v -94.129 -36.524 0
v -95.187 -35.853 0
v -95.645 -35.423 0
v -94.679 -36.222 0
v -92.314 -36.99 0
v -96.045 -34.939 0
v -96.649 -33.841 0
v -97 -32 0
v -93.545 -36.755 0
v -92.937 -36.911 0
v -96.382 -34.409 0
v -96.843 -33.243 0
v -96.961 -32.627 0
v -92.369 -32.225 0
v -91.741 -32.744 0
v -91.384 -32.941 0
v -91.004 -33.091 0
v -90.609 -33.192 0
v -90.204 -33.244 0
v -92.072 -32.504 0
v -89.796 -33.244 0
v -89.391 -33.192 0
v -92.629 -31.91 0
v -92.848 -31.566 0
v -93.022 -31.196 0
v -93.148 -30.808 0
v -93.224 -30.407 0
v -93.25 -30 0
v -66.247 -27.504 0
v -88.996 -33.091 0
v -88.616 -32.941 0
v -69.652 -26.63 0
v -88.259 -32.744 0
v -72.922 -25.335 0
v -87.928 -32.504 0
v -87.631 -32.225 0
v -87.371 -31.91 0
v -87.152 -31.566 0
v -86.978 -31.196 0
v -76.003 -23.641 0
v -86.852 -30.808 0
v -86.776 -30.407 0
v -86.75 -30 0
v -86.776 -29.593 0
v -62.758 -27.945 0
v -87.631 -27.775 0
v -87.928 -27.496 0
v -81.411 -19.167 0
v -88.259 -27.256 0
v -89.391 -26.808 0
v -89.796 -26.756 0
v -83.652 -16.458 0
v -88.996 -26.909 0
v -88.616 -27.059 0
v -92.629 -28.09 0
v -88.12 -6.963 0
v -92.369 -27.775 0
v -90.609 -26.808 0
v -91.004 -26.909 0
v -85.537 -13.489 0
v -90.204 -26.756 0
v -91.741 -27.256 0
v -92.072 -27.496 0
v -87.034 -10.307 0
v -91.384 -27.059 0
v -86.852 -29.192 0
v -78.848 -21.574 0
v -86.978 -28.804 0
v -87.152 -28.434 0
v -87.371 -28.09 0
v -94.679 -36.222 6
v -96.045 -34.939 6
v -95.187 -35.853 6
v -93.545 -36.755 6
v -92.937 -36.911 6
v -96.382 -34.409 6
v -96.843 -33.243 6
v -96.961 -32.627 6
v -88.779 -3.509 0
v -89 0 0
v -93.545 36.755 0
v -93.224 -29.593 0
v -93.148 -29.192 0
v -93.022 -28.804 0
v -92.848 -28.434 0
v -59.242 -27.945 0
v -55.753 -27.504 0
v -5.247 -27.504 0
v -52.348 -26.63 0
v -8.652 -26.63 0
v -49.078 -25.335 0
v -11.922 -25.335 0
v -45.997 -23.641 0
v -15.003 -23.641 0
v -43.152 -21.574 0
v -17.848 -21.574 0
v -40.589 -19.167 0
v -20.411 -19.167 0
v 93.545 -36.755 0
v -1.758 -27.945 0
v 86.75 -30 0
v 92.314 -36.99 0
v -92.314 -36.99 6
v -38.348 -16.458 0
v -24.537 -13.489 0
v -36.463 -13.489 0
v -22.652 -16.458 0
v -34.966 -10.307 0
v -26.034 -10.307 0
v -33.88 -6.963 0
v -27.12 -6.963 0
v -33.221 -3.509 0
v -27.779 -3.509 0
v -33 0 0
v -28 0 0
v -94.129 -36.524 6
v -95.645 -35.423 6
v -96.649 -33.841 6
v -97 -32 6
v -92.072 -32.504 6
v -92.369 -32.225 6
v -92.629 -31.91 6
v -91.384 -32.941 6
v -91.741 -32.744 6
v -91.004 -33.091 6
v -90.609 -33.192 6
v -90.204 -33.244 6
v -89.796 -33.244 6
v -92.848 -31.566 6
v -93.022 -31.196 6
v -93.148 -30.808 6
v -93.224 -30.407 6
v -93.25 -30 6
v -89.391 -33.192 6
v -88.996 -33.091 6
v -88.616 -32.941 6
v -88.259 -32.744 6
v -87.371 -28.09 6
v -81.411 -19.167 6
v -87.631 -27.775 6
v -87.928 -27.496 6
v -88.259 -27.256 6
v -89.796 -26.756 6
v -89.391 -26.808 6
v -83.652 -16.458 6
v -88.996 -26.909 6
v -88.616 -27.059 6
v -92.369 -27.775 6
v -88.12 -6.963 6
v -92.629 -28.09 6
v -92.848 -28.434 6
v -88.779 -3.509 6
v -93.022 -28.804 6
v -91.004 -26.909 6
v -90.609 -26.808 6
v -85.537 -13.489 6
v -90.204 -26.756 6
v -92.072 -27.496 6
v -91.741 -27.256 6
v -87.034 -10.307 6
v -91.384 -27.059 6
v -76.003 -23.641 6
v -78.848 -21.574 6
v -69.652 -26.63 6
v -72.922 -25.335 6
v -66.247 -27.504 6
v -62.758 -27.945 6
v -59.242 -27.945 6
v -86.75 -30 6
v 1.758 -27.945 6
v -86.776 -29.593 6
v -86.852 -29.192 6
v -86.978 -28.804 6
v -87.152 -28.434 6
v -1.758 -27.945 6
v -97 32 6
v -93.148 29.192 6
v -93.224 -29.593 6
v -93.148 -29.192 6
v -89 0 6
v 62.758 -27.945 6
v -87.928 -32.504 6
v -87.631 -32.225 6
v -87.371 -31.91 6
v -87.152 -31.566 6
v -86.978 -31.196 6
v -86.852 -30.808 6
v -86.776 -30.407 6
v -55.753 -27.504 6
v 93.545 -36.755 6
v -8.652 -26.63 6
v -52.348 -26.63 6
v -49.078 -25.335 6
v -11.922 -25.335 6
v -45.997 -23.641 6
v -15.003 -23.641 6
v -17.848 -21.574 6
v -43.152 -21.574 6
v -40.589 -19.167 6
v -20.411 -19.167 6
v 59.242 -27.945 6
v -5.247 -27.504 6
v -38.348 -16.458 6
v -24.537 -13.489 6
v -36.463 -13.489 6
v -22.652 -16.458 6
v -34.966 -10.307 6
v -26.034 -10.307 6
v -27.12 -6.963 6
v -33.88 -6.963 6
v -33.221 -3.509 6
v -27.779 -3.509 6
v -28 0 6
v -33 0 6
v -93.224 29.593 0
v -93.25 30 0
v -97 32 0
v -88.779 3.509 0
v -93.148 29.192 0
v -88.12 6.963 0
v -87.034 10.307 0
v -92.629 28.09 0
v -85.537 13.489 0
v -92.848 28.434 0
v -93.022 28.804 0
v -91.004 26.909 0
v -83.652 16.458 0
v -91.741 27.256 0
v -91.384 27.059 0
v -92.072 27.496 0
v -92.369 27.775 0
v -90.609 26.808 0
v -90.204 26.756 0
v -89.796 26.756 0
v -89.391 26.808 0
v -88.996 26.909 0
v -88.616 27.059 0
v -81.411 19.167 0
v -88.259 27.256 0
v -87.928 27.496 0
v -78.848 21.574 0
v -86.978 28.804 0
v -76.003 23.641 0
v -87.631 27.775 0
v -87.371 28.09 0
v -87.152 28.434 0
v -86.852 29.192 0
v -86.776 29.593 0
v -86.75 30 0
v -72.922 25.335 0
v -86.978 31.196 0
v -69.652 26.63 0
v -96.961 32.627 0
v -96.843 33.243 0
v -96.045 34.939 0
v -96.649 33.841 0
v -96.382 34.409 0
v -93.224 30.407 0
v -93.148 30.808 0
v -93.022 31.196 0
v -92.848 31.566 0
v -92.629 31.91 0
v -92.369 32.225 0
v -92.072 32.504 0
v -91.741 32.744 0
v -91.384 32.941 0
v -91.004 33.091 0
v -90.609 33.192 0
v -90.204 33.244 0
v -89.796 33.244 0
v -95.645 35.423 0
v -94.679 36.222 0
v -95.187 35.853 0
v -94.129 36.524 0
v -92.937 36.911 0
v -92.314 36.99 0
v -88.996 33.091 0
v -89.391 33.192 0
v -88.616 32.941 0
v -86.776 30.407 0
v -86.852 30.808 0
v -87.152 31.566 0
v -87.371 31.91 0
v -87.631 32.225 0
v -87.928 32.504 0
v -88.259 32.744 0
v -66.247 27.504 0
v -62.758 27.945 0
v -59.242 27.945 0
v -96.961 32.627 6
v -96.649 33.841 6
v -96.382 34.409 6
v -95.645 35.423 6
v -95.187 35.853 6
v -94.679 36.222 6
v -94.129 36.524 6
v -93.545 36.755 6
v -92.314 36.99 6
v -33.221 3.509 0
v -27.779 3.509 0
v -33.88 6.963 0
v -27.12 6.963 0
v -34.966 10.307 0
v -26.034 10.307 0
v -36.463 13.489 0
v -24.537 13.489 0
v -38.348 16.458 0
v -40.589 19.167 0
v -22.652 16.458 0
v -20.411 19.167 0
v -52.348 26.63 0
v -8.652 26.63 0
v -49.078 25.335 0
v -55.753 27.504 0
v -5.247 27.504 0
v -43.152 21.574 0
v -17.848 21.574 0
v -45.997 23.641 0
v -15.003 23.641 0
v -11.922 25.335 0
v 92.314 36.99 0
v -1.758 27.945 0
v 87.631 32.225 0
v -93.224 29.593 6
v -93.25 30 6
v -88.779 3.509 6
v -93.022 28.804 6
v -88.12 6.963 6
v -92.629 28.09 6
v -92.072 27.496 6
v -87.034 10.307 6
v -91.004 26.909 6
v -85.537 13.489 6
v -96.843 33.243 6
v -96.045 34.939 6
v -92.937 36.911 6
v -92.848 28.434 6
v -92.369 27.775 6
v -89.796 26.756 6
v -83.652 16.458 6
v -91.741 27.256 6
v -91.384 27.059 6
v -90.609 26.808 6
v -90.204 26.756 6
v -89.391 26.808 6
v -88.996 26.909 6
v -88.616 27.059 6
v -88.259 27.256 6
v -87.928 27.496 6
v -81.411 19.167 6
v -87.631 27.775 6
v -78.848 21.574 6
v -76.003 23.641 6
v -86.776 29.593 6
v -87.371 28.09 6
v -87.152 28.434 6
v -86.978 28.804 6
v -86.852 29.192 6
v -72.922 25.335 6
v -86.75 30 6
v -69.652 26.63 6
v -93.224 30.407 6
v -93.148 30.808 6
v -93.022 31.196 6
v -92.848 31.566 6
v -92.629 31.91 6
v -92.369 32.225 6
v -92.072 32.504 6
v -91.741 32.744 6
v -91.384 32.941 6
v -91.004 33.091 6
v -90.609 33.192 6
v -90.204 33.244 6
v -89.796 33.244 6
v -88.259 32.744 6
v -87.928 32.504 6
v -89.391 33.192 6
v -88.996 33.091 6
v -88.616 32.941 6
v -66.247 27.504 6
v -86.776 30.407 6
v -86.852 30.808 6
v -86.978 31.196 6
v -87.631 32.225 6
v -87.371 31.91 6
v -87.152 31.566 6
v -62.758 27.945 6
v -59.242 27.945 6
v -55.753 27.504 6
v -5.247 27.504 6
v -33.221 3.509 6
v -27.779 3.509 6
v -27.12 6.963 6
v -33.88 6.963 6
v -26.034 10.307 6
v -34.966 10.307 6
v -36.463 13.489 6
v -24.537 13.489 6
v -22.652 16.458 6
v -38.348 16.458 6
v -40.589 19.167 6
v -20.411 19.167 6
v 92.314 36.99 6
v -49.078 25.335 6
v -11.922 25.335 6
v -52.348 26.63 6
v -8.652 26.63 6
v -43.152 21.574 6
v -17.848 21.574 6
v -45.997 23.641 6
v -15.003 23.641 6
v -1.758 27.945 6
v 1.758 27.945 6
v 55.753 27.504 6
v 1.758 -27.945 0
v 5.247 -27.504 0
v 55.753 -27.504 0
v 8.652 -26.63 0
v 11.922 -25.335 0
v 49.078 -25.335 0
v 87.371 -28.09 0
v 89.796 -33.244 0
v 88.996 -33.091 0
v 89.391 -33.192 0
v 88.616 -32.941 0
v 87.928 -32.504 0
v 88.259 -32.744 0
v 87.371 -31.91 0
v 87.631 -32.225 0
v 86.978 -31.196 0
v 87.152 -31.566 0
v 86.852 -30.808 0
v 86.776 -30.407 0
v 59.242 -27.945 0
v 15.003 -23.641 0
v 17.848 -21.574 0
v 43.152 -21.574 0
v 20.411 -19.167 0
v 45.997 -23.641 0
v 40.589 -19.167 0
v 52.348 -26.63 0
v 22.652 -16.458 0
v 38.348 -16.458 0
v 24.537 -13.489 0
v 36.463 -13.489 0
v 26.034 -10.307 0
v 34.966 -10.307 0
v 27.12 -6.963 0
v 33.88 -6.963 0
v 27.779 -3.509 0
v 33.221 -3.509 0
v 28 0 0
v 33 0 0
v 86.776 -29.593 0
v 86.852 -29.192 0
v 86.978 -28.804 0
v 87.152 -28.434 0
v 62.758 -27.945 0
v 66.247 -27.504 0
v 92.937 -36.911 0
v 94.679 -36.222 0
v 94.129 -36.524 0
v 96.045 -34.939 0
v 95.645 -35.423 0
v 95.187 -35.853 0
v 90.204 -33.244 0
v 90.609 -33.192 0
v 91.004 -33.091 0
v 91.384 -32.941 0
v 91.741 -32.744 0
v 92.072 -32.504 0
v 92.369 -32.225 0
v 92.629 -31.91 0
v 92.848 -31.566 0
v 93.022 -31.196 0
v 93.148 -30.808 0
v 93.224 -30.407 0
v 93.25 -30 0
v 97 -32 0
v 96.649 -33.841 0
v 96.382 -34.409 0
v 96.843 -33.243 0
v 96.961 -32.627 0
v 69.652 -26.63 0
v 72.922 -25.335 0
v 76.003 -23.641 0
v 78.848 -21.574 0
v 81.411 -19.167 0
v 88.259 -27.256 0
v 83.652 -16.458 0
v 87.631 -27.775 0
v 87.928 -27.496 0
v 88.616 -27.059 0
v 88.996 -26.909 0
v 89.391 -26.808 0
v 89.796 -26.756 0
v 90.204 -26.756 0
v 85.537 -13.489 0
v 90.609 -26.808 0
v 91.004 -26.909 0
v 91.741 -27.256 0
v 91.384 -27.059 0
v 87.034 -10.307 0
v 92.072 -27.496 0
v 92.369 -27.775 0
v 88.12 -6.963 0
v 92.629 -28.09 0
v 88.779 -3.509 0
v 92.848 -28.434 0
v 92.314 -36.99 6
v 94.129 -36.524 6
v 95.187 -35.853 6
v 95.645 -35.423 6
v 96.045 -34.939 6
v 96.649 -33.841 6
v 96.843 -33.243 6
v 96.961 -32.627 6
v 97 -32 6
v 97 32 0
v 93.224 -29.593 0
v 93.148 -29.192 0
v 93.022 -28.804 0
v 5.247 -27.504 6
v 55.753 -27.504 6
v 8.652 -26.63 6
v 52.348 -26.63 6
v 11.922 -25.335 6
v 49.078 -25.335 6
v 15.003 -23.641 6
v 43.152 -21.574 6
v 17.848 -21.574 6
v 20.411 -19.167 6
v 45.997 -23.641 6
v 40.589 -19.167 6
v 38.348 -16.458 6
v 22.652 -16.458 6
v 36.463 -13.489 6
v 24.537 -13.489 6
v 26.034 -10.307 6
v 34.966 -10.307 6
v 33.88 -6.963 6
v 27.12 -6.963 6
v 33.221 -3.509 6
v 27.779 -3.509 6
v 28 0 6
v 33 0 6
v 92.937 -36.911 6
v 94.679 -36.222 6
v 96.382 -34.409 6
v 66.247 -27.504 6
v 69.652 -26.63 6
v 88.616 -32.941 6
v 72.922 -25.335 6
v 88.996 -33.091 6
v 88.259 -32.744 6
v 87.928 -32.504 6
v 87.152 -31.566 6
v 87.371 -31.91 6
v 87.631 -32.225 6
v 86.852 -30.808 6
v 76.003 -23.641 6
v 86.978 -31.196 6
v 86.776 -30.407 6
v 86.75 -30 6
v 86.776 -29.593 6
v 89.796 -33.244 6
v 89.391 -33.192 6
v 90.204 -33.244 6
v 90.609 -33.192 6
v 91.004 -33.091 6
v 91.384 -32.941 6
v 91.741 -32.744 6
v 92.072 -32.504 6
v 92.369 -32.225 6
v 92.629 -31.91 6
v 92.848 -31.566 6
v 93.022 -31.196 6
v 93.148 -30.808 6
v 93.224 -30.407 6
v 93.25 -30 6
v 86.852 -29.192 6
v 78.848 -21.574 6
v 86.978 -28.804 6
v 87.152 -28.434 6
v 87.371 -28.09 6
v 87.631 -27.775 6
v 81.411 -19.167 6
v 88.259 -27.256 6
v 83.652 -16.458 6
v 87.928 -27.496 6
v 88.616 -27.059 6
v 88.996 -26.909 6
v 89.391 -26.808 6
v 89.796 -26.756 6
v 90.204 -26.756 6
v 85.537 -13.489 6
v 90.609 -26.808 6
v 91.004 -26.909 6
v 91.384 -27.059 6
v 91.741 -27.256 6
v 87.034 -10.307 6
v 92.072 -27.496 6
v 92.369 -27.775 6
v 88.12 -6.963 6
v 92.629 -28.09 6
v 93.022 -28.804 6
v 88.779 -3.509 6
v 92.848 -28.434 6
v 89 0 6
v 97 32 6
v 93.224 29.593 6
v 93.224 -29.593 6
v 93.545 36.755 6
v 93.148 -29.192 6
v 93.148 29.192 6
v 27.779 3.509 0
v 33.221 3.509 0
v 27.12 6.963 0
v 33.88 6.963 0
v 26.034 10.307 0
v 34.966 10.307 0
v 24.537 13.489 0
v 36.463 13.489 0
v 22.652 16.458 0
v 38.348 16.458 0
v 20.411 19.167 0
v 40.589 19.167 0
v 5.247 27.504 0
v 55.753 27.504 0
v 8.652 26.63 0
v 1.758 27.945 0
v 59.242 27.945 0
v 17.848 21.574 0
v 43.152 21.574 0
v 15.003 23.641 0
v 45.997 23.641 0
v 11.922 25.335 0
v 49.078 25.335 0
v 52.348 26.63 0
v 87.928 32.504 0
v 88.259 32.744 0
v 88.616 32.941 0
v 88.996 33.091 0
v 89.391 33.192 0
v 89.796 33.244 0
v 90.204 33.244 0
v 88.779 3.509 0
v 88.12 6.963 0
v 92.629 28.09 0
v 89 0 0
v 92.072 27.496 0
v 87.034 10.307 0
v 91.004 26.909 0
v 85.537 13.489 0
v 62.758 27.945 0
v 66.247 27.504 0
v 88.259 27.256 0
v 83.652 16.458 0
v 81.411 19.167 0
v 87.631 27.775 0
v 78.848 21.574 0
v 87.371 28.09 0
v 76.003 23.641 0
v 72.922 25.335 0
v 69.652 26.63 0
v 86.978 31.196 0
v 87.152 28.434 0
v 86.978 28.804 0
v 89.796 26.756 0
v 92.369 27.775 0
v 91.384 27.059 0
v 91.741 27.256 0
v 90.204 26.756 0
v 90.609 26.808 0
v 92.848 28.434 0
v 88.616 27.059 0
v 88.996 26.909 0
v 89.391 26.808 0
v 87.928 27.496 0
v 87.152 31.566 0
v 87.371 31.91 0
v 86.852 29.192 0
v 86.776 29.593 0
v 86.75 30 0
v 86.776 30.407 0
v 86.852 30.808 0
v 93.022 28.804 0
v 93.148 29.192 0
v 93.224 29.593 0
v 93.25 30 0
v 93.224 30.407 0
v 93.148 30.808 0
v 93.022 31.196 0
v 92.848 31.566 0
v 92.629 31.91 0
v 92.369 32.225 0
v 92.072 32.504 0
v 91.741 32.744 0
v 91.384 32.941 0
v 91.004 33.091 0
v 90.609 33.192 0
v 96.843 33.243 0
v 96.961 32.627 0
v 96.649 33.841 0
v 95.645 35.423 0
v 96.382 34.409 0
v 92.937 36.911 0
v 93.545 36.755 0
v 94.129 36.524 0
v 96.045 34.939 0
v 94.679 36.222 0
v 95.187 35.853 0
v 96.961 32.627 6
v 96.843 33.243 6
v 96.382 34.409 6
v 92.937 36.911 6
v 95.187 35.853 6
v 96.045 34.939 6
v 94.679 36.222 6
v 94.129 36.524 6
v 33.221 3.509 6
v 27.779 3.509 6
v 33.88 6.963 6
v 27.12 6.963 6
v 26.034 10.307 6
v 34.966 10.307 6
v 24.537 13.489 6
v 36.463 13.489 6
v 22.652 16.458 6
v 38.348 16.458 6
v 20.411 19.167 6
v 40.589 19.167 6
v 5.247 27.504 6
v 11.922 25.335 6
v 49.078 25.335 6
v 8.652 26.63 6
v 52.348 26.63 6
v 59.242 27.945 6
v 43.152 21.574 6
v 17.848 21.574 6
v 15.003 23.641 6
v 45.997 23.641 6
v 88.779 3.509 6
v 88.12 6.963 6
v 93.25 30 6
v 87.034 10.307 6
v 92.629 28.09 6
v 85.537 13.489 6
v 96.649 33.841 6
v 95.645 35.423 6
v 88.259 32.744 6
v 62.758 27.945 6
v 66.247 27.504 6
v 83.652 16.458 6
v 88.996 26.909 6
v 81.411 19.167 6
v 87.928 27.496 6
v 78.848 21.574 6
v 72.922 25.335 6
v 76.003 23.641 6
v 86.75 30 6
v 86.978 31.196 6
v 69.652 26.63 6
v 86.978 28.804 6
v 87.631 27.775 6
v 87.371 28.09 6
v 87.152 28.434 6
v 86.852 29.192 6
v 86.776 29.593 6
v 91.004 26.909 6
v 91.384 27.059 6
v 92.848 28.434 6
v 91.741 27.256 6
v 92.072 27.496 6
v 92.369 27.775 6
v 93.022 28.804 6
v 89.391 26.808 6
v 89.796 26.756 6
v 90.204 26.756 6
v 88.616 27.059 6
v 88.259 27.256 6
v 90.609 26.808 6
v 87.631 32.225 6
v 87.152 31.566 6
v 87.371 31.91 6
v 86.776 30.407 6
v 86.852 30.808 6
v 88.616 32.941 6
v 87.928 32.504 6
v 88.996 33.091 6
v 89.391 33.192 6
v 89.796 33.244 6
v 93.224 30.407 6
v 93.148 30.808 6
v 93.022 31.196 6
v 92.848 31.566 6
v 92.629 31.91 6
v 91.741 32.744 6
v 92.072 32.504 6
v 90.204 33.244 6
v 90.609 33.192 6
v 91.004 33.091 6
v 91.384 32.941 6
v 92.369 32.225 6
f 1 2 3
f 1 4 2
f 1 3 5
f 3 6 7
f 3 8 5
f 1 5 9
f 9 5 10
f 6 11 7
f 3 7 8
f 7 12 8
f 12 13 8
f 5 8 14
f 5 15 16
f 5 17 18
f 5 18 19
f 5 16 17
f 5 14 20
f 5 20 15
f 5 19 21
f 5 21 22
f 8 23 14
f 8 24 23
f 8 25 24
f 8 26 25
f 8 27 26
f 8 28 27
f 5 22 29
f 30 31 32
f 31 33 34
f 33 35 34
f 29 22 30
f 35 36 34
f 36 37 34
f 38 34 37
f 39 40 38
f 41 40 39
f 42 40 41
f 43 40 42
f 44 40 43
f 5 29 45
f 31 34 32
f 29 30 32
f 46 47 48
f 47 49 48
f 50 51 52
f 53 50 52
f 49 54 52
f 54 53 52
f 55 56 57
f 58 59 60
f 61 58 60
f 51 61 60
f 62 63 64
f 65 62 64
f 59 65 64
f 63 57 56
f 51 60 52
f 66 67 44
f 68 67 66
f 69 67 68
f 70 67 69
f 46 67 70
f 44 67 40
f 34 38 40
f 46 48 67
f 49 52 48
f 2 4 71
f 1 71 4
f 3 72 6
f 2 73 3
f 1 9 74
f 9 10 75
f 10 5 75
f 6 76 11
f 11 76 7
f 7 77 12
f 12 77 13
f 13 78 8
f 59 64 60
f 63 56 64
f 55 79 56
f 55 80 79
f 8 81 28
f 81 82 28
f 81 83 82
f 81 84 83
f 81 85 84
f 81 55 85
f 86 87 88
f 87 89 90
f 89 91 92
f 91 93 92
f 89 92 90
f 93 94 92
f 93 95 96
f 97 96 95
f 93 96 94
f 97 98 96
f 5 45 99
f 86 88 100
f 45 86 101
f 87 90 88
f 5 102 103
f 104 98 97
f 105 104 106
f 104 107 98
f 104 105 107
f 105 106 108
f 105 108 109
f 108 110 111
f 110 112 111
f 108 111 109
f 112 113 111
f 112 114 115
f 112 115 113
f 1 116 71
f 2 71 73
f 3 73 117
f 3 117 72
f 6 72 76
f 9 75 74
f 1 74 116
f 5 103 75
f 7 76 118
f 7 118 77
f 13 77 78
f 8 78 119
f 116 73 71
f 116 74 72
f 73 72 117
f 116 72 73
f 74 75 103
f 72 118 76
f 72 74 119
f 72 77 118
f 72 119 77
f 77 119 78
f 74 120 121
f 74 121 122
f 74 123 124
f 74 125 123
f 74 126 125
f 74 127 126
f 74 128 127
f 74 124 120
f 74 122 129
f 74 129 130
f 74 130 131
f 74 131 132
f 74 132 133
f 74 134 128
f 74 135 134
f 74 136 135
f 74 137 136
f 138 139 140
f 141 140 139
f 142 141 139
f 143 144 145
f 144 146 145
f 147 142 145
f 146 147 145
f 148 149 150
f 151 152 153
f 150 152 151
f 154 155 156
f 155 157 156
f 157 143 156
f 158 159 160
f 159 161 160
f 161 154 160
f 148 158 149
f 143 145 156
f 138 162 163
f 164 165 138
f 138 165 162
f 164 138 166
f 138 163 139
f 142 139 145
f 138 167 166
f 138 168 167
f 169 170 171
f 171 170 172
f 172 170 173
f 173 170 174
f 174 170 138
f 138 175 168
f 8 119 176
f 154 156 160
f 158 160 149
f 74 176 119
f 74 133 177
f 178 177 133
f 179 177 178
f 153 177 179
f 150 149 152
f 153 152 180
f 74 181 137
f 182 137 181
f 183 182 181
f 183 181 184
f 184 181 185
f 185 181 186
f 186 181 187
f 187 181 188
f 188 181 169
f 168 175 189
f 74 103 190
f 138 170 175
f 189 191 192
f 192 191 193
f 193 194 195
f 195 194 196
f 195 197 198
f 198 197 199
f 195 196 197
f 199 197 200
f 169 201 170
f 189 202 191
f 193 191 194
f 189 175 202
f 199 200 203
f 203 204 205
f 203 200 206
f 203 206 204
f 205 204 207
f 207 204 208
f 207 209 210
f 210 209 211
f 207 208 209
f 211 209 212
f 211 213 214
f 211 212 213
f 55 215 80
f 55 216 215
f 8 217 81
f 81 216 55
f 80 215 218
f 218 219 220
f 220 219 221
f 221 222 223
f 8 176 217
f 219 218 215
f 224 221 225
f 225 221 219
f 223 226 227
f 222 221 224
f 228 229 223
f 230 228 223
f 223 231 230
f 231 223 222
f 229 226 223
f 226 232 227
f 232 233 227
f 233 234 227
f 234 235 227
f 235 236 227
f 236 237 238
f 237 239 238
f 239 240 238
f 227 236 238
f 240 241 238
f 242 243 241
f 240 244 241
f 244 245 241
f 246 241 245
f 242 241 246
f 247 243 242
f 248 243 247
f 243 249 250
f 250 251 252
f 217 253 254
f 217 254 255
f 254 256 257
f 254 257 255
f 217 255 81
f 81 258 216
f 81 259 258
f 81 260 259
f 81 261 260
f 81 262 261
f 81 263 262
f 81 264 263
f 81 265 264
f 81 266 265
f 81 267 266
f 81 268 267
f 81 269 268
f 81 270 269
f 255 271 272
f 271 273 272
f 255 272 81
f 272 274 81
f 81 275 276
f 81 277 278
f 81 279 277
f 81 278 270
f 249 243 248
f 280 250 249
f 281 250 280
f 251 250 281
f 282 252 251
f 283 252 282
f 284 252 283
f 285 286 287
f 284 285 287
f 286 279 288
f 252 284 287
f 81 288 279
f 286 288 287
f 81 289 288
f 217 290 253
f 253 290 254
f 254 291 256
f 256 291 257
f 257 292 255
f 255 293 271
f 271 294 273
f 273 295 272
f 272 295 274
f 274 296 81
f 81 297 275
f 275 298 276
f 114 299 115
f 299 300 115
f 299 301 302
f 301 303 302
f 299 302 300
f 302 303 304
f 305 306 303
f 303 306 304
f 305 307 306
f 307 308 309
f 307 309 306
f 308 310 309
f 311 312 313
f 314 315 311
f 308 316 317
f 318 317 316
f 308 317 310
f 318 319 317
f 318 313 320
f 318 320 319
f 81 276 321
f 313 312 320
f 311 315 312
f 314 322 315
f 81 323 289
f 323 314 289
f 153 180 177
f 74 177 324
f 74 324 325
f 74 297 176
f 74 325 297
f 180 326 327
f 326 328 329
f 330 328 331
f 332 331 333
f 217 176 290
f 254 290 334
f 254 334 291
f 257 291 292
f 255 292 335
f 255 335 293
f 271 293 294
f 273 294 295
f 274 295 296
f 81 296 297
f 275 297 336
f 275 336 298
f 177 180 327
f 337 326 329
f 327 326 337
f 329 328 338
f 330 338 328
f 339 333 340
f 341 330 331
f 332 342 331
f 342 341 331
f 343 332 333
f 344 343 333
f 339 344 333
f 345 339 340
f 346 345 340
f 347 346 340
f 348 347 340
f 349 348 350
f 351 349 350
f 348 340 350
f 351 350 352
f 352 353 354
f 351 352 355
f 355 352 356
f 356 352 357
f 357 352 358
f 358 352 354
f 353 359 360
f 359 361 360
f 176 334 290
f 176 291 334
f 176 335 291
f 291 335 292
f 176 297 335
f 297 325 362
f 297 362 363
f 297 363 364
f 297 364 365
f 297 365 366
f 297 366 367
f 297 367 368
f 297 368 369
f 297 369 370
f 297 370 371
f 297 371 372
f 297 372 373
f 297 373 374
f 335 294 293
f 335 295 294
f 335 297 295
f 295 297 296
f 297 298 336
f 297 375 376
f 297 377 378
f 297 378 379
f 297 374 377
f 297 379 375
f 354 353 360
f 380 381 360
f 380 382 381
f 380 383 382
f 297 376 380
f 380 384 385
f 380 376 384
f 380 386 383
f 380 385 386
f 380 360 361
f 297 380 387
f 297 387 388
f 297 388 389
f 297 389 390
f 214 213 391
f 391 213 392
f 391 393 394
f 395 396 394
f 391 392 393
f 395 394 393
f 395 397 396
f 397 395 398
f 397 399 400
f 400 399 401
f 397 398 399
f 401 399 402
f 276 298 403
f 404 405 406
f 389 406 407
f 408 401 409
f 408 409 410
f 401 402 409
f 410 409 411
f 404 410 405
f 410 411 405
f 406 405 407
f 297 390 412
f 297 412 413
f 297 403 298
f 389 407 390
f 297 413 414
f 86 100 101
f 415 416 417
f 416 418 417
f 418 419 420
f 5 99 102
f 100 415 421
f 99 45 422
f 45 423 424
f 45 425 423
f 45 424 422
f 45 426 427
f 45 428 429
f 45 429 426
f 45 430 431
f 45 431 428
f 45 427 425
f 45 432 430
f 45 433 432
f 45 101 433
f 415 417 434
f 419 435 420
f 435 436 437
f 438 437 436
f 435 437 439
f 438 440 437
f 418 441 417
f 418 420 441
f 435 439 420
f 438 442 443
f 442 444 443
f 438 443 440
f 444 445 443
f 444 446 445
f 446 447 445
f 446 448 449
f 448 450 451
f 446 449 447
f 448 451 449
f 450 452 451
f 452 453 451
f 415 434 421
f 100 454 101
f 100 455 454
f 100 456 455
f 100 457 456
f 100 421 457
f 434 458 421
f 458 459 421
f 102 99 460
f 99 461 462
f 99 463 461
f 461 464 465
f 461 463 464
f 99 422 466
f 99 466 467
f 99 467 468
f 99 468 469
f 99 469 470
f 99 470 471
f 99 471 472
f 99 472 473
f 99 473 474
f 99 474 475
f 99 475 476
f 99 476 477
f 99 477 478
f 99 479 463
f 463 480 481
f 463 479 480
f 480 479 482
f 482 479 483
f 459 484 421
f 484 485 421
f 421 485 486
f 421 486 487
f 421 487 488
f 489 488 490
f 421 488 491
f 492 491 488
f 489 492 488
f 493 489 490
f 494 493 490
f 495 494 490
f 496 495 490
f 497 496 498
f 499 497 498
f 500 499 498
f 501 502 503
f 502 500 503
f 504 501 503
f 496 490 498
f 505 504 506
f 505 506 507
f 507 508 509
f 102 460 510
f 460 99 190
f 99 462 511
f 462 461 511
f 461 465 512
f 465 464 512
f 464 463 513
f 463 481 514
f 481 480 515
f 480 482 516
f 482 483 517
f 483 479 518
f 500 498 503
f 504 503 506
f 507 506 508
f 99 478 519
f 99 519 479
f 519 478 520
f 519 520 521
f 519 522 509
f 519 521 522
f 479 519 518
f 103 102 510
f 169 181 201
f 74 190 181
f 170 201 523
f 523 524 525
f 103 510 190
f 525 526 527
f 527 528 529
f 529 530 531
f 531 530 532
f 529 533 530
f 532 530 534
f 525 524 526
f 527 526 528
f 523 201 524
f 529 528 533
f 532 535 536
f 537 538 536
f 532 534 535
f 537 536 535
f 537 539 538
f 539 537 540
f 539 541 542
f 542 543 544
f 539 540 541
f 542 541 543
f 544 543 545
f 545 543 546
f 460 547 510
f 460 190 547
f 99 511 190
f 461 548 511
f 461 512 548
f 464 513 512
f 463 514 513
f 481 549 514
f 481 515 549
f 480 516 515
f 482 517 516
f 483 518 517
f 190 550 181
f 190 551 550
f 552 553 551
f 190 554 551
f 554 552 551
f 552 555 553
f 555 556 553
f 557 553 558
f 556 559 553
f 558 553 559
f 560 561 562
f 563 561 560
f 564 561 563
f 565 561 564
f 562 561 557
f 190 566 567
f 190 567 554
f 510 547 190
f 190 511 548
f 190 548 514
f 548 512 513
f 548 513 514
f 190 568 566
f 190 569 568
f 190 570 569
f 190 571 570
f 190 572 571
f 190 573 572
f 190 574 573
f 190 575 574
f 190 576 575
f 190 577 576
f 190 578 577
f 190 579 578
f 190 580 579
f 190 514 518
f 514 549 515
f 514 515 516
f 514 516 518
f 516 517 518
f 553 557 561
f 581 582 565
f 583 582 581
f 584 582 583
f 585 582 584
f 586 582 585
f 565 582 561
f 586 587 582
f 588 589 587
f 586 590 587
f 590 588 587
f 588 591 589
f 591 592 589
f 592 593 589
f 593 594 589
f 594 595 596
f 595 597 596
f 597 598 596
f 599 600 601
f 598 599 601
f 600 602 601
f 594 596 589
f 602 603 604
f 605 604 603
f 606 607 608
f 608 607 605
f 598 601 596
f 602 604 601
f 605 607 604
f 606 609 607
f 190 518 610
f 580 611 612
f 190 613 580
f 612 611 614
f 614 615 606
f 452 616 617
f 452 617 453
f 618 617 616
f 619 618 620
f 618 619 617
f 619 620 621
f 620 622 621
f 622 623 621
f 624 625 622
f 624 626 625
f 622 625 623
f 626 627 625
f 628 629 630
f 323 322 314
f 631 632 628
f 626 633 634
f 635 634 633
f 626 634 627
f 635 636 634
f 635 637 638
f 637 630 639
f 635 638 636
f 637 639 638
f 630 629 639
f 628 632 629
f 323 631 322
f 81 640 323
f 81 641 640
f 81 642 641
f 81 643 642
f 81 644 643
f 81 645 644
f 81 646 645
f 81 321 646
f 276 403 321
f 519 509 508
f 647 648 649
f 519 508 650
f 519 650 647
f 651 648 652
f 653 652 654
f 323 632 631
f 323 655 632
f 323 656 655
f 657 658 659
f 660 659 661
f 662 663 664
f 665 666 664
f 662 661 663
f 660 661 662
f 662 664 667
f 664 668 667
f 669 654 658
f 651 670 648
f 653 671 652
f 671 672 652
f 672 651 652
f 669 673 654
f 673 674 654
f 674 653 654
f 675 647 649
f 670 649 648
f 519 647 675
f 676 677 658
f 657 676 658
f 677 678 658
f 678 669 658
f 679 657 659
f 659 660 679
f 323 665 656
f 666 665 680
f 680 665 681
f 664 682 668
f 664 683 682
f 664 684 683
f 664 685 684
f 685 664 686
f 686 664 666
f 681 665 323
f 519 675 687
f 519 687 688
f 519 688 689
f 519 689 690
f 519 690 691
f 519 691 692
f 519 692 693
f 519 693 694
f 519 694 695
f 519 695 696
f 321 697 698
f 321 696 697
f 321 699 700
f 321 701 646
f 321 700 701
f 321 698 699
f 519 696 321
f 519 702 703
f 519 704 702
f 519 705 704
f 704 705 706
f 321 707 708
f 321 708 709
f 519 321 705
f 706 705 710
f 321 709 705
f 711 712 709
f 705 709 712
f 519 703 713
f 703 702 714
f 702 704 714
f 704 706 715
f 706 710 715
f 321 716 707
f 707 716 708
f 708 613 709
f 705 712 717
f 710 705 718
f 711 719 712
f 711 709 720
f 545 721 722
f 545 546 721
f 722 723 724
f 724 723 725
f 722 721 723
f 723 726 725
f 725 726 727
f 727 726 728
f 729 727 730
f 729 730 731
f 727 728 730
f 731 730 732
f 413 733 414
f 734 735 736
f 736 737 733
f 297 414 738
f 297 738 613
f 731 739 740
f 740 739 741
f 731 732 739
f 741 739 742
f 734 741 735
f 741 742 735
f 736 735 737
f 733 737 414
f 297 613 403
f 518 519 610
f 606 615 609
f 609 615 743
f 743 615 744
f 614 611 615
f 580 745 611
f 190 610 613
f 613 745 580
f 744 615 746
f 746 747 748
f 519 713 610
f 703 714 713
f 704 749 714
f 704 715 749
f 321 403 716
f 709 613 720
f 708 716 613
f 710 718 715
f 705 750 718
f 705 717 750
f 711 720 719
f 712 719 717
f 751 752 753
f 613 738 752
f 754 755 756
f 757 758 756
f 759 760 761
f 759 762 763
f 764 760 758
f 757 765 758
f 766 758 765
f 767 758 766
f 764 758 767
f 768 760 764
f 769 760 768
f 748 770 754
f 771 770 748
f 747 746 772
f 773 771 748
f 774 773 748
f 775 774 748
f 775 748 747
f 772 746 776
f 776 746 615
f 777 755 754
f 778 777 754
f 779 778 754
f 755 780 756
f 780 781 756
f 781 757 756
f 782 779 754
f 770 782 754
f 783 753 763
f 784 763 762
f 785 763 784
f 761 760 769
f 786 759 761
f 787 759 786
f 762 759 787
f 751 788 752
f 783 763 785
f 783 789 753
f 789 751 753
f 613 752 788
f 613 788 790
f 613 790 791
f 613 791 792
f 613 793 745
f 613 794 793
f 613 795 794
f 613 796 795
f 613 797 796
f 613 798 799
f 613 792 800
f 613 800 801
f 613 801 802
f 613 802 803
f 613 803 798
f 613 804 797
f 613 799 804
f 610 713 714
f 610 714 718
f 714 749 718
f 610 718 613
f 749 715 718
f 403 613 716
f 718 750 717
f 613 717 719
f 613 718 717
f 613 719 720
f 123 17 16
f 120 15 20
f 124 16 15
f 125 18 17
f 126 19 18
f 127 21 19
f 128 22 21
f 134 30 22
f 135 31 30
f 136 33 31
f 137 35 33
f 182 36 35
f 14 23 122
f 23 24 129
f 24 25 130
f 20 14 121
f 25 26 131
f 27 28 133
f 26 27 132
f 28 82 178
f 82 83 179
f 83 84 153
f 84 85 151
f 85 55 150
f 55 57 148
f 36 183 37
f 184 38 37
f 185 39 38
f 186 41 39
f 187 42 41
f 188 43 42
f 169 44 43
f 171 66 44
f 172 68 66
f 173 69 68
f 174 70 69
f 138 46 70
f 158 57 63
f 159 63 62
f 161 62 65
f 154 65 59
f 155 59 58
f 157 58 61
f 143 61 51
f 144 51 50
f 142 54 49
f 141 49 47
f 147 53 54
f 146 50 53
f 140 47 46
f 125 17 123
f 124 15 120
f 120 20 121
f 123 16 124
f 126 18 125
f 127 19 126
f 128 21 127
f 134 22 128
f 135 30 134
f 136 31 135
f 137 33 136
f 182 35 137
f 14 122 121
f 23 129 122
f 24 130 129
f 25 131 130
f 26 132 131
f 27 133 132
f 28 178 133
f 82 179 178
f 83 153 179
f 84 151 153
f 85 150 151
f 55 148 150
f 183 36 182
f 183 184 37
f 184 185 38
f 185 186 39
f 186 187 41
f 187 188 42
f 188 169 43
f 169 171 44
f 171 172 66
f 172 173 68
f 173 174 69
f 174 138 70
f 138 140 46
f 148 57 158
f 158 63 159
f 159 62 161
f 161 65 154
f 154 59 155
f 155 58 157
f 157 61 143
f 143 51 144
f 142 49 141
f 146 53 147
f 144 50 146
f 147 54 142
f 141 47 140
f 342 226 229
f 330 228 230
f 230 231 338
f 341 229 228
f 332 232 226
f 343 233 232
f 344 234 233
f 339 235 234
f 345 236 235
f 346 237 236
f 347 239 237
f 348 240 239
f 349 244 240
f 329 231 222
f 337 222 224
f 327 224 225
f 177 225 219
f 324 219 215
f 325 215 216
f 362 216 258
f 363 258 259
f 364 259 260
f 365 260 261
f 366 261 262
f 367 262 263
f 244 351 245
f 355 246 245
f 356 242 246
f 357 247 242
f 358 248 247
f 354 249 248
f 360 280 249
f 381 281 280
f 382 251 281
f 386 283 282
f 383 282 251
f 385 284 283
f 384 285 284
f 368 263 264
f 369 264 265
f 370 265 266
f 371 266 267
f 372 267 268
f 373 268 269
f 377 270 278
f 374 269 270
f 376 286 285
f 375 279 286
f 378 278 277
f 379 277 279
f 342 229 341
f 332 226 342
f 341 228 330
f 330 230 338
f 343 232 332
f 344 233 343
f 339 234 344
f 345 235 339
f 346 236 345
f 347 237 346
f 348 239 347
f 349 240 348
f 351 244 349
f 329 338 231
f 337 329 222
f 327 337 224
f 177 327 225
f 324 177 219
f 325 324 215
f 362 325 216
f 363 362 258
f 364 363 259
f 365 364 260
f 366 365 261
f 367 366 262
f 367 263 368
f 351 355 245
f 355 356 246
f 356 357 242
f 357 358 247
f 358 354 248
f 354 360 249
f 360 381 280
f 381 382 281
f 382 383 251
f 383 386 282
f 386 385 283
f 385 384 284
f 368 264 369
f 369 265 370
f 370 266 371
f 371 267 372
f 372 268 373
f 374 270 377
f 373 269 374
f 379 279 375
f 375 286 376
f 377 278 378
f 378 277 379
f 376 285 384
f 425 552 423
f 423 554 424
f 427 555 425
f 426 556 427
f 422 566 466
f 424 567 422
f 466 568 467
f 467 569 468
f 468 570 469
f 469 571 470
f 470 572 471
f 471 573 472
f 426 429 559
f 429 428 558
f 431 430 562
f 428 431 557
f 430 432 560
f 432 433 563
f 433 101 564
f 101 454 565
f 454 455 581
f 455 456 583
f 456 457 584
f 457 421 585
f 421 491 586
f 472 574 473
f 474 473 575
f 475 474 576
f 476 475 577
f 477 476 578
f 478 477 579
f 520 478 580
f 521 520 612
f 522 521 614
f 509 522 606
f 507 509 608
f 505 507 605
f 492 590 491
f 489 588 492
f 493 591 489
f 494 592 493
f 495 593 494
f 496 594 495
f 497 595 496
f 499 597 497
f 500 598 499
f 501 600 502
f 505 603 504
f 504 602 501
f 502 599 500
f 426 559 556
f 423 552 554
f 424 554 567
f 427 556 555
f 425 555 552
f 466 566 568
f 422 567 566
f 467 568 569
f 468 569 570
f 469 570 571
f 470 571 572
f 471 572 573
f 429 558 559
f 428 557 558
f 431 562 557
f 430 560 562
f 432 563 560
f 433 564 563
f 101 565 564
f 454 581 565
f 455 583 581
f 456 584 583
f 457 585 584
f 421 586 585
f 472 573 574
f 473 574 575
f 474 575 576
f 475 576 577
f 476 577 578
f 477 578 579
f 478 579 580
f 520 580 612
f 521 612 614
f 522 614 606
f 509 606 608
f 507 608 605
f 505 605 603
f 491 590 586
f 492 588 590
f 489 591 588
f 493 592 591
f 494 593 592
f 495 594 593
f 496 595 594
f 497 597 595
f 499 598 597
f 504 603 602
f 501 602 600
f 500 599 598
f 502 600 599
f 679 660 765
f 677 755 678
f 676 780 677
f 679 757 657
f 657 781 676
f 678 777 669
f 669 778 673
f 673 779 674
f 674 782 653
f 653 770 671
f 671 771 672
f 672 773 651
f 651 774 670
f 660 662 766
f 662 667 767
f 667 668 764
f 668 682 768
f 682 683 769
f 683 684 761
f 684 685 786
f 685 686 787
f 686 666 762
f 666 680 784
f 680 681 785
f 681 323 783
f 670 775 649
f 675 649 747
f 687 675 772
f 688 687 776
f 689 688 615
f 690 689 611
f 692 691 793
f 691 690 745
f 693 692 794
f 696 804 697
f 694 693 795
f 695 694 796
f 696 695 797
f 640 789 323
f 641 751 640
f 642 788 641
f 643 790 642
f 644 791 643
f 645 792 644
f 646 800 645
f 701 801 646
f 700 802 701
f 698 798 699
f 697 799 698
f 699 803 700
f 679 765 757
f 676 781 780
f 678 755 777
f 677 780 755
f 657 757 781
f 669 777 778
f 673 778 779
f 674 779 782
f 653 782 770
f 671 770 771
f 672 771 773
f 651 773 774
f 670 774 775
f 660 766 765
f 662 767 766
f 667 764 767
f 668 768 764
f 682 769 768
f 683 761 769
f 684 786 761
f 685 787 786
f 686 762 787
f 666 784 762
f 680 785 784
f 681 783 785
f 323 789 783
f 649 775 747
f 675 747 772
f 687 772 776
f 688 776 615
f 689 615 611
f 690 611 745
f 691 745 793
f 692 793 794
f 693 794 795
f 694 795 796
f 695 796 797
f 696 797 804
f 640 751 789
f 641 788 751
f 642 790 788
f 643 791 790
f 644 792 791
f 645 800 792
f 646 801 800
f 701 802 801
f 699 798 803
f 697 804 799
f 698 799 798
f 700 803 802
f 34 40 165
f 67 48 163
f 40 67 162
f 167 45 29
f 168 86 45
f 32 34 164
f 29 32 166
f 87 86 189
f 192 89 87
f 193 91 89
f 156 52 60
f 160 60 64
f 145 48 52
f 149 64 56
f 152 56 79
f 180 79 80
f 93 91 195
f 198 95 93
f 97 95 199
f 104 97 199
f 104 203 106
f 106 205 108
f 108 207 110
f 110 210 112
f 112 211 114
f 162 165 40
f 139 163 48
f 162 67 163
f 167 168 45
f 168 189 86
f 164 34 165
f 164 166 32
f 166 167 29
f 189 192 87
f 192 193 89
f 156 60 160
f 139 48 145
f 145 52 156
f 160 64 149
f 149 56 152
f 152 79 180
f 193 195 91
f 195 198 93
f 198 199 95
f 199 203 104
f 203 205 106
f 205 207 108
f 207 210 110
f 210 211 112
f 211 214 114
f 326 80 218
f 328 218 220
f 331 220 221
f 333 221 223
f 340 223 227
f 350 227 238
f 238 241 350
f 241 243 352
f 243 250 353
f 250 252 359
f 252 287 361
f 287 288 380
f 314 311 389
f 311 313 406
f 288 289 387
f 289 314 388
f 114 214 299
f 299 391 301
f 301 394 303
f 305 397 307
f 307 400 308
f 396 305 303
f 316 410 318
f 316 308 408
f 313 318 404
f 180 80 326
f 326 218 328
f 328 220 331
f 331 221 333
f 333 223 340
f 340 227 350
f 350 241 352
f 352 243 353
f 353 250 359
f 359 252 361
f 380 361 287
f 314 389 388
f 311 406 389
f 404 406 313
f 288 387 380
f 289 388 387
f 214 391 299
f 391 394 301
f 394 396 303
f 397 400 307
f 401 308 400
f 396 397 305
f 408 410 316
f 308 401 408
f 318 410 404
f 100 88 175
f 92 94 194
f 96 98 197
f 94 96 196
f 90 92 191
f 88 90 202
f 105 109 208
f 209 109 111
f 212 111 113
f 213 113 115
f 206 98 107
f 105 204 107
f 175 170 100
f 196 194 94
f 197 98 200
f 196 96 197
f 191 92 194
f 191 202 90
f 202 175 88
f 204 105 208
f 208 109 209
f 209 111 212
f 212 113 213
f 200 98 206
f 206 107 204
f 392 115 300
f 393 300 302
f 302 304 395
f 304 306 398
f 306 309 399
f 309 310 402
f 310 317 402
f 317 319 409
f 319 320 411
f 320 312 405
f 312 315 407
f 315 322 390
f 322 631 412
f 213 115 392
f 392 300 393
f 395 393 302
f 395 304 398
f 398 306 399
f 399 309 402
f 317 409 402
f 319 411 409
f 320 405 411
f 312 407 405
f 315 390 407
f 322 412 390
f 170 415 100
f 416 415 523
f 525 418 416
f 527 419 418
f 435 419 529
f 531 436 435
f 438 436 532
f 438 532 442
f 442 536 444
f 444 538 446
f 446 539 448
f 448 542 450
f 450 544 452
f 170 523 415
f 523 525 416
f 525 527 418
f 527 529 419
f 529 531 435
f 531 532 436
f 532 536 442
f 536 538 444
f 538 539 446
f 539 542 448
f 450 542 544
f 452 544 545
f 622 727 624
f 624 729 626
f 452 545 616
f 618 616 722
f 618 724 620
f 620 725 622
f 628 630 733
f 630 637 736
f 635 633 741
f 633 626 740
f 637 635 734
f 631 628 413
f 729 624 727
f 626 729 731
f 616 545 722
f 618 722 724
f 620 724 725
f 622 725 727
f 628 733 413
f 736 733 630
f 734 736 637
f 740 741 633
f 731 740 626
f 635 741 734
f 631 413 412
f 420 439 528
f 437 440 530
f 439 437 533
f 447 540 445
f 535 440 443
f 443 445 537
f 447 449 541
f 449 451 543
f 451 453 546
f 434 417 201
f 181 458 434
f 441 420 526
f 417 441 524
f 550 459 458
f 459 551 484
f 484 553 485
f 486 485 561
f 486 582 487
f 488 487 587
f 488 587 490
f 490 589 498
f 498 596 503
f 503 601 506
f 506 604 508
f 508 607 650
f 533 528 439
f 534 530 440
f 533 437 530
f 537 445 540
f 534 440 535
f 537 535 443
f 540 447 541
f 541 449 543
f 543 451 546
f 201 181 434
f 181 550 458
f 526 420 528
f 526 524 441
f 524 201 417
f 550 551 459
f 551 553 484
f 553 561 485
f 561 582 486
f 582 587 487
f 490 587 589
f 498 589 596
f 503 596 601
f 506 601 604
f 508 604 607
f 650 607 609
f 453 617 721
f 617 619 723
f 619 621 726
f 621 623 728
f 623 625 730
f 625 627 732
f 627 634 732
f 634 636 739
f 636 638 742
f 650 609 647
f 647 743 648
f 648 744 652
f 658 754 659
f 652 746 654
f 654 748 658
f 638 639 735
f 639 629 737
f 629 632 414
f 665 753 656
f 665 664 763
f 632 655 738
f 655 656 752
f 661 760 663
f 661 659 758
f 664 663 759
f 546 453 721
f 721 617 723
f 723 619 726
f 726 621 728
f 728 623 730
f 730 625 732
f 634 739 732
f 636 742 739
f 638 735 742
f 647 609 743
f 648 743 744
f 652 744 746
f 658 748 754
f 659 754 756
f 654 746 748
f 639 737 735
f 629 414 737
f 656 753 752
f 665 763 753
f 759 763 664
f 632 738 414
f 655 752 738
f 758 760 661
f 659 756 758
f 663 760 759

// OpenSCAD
$fn = 50;

difference() {
	union() {
		hull() {
			translate(v = [-92.0, 32.0, 0]) {
				cylinder(h = 6, r = 5);
			}
			translate(v = [92.0, 32.0, 0]) {
				cylinder(h = 6, r = 5);
			}
			translate(v = [-92.0, -32.0, 0]) {
				cylinder(h = 6, r = 5);
			}
			translate(v = [92.0, -32.0, 0]) {
				cylinder(h = 6, r = 5);
			}
		}
	}
	union() {
		translate(v = [-90.0, -30.0, -100.0]) {
			cylinder(h = 200, r = 3.25);
		}
		translate(v = [-90.0, 30.0, -100.0]) {
			cylinder(h = 200, r = 3.25);
		}
		translate(v = [90.0, -30.0, -100.0]) {
			cylinder(h = 200, r = 3.25);
		}
		translate(v = [90.0, 30.0, -100.0]) {
			cylinder(h = 200, r = 3.25);
		}
		translate(v = [-90.0, -30.0, -100.0]) {
			cylinder(h = 200, r = 1.8);
		}
		translate(v = [-90.0, 30.0, -100.0]) {
			cylinder(h = 200, r = 1.8);
		}
		translate(v = [90.0, -30.0, -100.0]) {
			cylinder(h = 200, r = 1.8);
		}
		translate(v = [90.0, 30.0, -100.0]) {
			cylinder(h = 200, r = 1.8);
		}
		translate(v = [-61.0, 0, 0.0]) {
			cylinder(h = 6, r = 28.0);
		}
		cylinder(h = 6, r = 28.0);
		translate(v = [61.0, 0, 0.0]) {
			cylinder(h = 6, r = 28.0);
		}
	}
}
